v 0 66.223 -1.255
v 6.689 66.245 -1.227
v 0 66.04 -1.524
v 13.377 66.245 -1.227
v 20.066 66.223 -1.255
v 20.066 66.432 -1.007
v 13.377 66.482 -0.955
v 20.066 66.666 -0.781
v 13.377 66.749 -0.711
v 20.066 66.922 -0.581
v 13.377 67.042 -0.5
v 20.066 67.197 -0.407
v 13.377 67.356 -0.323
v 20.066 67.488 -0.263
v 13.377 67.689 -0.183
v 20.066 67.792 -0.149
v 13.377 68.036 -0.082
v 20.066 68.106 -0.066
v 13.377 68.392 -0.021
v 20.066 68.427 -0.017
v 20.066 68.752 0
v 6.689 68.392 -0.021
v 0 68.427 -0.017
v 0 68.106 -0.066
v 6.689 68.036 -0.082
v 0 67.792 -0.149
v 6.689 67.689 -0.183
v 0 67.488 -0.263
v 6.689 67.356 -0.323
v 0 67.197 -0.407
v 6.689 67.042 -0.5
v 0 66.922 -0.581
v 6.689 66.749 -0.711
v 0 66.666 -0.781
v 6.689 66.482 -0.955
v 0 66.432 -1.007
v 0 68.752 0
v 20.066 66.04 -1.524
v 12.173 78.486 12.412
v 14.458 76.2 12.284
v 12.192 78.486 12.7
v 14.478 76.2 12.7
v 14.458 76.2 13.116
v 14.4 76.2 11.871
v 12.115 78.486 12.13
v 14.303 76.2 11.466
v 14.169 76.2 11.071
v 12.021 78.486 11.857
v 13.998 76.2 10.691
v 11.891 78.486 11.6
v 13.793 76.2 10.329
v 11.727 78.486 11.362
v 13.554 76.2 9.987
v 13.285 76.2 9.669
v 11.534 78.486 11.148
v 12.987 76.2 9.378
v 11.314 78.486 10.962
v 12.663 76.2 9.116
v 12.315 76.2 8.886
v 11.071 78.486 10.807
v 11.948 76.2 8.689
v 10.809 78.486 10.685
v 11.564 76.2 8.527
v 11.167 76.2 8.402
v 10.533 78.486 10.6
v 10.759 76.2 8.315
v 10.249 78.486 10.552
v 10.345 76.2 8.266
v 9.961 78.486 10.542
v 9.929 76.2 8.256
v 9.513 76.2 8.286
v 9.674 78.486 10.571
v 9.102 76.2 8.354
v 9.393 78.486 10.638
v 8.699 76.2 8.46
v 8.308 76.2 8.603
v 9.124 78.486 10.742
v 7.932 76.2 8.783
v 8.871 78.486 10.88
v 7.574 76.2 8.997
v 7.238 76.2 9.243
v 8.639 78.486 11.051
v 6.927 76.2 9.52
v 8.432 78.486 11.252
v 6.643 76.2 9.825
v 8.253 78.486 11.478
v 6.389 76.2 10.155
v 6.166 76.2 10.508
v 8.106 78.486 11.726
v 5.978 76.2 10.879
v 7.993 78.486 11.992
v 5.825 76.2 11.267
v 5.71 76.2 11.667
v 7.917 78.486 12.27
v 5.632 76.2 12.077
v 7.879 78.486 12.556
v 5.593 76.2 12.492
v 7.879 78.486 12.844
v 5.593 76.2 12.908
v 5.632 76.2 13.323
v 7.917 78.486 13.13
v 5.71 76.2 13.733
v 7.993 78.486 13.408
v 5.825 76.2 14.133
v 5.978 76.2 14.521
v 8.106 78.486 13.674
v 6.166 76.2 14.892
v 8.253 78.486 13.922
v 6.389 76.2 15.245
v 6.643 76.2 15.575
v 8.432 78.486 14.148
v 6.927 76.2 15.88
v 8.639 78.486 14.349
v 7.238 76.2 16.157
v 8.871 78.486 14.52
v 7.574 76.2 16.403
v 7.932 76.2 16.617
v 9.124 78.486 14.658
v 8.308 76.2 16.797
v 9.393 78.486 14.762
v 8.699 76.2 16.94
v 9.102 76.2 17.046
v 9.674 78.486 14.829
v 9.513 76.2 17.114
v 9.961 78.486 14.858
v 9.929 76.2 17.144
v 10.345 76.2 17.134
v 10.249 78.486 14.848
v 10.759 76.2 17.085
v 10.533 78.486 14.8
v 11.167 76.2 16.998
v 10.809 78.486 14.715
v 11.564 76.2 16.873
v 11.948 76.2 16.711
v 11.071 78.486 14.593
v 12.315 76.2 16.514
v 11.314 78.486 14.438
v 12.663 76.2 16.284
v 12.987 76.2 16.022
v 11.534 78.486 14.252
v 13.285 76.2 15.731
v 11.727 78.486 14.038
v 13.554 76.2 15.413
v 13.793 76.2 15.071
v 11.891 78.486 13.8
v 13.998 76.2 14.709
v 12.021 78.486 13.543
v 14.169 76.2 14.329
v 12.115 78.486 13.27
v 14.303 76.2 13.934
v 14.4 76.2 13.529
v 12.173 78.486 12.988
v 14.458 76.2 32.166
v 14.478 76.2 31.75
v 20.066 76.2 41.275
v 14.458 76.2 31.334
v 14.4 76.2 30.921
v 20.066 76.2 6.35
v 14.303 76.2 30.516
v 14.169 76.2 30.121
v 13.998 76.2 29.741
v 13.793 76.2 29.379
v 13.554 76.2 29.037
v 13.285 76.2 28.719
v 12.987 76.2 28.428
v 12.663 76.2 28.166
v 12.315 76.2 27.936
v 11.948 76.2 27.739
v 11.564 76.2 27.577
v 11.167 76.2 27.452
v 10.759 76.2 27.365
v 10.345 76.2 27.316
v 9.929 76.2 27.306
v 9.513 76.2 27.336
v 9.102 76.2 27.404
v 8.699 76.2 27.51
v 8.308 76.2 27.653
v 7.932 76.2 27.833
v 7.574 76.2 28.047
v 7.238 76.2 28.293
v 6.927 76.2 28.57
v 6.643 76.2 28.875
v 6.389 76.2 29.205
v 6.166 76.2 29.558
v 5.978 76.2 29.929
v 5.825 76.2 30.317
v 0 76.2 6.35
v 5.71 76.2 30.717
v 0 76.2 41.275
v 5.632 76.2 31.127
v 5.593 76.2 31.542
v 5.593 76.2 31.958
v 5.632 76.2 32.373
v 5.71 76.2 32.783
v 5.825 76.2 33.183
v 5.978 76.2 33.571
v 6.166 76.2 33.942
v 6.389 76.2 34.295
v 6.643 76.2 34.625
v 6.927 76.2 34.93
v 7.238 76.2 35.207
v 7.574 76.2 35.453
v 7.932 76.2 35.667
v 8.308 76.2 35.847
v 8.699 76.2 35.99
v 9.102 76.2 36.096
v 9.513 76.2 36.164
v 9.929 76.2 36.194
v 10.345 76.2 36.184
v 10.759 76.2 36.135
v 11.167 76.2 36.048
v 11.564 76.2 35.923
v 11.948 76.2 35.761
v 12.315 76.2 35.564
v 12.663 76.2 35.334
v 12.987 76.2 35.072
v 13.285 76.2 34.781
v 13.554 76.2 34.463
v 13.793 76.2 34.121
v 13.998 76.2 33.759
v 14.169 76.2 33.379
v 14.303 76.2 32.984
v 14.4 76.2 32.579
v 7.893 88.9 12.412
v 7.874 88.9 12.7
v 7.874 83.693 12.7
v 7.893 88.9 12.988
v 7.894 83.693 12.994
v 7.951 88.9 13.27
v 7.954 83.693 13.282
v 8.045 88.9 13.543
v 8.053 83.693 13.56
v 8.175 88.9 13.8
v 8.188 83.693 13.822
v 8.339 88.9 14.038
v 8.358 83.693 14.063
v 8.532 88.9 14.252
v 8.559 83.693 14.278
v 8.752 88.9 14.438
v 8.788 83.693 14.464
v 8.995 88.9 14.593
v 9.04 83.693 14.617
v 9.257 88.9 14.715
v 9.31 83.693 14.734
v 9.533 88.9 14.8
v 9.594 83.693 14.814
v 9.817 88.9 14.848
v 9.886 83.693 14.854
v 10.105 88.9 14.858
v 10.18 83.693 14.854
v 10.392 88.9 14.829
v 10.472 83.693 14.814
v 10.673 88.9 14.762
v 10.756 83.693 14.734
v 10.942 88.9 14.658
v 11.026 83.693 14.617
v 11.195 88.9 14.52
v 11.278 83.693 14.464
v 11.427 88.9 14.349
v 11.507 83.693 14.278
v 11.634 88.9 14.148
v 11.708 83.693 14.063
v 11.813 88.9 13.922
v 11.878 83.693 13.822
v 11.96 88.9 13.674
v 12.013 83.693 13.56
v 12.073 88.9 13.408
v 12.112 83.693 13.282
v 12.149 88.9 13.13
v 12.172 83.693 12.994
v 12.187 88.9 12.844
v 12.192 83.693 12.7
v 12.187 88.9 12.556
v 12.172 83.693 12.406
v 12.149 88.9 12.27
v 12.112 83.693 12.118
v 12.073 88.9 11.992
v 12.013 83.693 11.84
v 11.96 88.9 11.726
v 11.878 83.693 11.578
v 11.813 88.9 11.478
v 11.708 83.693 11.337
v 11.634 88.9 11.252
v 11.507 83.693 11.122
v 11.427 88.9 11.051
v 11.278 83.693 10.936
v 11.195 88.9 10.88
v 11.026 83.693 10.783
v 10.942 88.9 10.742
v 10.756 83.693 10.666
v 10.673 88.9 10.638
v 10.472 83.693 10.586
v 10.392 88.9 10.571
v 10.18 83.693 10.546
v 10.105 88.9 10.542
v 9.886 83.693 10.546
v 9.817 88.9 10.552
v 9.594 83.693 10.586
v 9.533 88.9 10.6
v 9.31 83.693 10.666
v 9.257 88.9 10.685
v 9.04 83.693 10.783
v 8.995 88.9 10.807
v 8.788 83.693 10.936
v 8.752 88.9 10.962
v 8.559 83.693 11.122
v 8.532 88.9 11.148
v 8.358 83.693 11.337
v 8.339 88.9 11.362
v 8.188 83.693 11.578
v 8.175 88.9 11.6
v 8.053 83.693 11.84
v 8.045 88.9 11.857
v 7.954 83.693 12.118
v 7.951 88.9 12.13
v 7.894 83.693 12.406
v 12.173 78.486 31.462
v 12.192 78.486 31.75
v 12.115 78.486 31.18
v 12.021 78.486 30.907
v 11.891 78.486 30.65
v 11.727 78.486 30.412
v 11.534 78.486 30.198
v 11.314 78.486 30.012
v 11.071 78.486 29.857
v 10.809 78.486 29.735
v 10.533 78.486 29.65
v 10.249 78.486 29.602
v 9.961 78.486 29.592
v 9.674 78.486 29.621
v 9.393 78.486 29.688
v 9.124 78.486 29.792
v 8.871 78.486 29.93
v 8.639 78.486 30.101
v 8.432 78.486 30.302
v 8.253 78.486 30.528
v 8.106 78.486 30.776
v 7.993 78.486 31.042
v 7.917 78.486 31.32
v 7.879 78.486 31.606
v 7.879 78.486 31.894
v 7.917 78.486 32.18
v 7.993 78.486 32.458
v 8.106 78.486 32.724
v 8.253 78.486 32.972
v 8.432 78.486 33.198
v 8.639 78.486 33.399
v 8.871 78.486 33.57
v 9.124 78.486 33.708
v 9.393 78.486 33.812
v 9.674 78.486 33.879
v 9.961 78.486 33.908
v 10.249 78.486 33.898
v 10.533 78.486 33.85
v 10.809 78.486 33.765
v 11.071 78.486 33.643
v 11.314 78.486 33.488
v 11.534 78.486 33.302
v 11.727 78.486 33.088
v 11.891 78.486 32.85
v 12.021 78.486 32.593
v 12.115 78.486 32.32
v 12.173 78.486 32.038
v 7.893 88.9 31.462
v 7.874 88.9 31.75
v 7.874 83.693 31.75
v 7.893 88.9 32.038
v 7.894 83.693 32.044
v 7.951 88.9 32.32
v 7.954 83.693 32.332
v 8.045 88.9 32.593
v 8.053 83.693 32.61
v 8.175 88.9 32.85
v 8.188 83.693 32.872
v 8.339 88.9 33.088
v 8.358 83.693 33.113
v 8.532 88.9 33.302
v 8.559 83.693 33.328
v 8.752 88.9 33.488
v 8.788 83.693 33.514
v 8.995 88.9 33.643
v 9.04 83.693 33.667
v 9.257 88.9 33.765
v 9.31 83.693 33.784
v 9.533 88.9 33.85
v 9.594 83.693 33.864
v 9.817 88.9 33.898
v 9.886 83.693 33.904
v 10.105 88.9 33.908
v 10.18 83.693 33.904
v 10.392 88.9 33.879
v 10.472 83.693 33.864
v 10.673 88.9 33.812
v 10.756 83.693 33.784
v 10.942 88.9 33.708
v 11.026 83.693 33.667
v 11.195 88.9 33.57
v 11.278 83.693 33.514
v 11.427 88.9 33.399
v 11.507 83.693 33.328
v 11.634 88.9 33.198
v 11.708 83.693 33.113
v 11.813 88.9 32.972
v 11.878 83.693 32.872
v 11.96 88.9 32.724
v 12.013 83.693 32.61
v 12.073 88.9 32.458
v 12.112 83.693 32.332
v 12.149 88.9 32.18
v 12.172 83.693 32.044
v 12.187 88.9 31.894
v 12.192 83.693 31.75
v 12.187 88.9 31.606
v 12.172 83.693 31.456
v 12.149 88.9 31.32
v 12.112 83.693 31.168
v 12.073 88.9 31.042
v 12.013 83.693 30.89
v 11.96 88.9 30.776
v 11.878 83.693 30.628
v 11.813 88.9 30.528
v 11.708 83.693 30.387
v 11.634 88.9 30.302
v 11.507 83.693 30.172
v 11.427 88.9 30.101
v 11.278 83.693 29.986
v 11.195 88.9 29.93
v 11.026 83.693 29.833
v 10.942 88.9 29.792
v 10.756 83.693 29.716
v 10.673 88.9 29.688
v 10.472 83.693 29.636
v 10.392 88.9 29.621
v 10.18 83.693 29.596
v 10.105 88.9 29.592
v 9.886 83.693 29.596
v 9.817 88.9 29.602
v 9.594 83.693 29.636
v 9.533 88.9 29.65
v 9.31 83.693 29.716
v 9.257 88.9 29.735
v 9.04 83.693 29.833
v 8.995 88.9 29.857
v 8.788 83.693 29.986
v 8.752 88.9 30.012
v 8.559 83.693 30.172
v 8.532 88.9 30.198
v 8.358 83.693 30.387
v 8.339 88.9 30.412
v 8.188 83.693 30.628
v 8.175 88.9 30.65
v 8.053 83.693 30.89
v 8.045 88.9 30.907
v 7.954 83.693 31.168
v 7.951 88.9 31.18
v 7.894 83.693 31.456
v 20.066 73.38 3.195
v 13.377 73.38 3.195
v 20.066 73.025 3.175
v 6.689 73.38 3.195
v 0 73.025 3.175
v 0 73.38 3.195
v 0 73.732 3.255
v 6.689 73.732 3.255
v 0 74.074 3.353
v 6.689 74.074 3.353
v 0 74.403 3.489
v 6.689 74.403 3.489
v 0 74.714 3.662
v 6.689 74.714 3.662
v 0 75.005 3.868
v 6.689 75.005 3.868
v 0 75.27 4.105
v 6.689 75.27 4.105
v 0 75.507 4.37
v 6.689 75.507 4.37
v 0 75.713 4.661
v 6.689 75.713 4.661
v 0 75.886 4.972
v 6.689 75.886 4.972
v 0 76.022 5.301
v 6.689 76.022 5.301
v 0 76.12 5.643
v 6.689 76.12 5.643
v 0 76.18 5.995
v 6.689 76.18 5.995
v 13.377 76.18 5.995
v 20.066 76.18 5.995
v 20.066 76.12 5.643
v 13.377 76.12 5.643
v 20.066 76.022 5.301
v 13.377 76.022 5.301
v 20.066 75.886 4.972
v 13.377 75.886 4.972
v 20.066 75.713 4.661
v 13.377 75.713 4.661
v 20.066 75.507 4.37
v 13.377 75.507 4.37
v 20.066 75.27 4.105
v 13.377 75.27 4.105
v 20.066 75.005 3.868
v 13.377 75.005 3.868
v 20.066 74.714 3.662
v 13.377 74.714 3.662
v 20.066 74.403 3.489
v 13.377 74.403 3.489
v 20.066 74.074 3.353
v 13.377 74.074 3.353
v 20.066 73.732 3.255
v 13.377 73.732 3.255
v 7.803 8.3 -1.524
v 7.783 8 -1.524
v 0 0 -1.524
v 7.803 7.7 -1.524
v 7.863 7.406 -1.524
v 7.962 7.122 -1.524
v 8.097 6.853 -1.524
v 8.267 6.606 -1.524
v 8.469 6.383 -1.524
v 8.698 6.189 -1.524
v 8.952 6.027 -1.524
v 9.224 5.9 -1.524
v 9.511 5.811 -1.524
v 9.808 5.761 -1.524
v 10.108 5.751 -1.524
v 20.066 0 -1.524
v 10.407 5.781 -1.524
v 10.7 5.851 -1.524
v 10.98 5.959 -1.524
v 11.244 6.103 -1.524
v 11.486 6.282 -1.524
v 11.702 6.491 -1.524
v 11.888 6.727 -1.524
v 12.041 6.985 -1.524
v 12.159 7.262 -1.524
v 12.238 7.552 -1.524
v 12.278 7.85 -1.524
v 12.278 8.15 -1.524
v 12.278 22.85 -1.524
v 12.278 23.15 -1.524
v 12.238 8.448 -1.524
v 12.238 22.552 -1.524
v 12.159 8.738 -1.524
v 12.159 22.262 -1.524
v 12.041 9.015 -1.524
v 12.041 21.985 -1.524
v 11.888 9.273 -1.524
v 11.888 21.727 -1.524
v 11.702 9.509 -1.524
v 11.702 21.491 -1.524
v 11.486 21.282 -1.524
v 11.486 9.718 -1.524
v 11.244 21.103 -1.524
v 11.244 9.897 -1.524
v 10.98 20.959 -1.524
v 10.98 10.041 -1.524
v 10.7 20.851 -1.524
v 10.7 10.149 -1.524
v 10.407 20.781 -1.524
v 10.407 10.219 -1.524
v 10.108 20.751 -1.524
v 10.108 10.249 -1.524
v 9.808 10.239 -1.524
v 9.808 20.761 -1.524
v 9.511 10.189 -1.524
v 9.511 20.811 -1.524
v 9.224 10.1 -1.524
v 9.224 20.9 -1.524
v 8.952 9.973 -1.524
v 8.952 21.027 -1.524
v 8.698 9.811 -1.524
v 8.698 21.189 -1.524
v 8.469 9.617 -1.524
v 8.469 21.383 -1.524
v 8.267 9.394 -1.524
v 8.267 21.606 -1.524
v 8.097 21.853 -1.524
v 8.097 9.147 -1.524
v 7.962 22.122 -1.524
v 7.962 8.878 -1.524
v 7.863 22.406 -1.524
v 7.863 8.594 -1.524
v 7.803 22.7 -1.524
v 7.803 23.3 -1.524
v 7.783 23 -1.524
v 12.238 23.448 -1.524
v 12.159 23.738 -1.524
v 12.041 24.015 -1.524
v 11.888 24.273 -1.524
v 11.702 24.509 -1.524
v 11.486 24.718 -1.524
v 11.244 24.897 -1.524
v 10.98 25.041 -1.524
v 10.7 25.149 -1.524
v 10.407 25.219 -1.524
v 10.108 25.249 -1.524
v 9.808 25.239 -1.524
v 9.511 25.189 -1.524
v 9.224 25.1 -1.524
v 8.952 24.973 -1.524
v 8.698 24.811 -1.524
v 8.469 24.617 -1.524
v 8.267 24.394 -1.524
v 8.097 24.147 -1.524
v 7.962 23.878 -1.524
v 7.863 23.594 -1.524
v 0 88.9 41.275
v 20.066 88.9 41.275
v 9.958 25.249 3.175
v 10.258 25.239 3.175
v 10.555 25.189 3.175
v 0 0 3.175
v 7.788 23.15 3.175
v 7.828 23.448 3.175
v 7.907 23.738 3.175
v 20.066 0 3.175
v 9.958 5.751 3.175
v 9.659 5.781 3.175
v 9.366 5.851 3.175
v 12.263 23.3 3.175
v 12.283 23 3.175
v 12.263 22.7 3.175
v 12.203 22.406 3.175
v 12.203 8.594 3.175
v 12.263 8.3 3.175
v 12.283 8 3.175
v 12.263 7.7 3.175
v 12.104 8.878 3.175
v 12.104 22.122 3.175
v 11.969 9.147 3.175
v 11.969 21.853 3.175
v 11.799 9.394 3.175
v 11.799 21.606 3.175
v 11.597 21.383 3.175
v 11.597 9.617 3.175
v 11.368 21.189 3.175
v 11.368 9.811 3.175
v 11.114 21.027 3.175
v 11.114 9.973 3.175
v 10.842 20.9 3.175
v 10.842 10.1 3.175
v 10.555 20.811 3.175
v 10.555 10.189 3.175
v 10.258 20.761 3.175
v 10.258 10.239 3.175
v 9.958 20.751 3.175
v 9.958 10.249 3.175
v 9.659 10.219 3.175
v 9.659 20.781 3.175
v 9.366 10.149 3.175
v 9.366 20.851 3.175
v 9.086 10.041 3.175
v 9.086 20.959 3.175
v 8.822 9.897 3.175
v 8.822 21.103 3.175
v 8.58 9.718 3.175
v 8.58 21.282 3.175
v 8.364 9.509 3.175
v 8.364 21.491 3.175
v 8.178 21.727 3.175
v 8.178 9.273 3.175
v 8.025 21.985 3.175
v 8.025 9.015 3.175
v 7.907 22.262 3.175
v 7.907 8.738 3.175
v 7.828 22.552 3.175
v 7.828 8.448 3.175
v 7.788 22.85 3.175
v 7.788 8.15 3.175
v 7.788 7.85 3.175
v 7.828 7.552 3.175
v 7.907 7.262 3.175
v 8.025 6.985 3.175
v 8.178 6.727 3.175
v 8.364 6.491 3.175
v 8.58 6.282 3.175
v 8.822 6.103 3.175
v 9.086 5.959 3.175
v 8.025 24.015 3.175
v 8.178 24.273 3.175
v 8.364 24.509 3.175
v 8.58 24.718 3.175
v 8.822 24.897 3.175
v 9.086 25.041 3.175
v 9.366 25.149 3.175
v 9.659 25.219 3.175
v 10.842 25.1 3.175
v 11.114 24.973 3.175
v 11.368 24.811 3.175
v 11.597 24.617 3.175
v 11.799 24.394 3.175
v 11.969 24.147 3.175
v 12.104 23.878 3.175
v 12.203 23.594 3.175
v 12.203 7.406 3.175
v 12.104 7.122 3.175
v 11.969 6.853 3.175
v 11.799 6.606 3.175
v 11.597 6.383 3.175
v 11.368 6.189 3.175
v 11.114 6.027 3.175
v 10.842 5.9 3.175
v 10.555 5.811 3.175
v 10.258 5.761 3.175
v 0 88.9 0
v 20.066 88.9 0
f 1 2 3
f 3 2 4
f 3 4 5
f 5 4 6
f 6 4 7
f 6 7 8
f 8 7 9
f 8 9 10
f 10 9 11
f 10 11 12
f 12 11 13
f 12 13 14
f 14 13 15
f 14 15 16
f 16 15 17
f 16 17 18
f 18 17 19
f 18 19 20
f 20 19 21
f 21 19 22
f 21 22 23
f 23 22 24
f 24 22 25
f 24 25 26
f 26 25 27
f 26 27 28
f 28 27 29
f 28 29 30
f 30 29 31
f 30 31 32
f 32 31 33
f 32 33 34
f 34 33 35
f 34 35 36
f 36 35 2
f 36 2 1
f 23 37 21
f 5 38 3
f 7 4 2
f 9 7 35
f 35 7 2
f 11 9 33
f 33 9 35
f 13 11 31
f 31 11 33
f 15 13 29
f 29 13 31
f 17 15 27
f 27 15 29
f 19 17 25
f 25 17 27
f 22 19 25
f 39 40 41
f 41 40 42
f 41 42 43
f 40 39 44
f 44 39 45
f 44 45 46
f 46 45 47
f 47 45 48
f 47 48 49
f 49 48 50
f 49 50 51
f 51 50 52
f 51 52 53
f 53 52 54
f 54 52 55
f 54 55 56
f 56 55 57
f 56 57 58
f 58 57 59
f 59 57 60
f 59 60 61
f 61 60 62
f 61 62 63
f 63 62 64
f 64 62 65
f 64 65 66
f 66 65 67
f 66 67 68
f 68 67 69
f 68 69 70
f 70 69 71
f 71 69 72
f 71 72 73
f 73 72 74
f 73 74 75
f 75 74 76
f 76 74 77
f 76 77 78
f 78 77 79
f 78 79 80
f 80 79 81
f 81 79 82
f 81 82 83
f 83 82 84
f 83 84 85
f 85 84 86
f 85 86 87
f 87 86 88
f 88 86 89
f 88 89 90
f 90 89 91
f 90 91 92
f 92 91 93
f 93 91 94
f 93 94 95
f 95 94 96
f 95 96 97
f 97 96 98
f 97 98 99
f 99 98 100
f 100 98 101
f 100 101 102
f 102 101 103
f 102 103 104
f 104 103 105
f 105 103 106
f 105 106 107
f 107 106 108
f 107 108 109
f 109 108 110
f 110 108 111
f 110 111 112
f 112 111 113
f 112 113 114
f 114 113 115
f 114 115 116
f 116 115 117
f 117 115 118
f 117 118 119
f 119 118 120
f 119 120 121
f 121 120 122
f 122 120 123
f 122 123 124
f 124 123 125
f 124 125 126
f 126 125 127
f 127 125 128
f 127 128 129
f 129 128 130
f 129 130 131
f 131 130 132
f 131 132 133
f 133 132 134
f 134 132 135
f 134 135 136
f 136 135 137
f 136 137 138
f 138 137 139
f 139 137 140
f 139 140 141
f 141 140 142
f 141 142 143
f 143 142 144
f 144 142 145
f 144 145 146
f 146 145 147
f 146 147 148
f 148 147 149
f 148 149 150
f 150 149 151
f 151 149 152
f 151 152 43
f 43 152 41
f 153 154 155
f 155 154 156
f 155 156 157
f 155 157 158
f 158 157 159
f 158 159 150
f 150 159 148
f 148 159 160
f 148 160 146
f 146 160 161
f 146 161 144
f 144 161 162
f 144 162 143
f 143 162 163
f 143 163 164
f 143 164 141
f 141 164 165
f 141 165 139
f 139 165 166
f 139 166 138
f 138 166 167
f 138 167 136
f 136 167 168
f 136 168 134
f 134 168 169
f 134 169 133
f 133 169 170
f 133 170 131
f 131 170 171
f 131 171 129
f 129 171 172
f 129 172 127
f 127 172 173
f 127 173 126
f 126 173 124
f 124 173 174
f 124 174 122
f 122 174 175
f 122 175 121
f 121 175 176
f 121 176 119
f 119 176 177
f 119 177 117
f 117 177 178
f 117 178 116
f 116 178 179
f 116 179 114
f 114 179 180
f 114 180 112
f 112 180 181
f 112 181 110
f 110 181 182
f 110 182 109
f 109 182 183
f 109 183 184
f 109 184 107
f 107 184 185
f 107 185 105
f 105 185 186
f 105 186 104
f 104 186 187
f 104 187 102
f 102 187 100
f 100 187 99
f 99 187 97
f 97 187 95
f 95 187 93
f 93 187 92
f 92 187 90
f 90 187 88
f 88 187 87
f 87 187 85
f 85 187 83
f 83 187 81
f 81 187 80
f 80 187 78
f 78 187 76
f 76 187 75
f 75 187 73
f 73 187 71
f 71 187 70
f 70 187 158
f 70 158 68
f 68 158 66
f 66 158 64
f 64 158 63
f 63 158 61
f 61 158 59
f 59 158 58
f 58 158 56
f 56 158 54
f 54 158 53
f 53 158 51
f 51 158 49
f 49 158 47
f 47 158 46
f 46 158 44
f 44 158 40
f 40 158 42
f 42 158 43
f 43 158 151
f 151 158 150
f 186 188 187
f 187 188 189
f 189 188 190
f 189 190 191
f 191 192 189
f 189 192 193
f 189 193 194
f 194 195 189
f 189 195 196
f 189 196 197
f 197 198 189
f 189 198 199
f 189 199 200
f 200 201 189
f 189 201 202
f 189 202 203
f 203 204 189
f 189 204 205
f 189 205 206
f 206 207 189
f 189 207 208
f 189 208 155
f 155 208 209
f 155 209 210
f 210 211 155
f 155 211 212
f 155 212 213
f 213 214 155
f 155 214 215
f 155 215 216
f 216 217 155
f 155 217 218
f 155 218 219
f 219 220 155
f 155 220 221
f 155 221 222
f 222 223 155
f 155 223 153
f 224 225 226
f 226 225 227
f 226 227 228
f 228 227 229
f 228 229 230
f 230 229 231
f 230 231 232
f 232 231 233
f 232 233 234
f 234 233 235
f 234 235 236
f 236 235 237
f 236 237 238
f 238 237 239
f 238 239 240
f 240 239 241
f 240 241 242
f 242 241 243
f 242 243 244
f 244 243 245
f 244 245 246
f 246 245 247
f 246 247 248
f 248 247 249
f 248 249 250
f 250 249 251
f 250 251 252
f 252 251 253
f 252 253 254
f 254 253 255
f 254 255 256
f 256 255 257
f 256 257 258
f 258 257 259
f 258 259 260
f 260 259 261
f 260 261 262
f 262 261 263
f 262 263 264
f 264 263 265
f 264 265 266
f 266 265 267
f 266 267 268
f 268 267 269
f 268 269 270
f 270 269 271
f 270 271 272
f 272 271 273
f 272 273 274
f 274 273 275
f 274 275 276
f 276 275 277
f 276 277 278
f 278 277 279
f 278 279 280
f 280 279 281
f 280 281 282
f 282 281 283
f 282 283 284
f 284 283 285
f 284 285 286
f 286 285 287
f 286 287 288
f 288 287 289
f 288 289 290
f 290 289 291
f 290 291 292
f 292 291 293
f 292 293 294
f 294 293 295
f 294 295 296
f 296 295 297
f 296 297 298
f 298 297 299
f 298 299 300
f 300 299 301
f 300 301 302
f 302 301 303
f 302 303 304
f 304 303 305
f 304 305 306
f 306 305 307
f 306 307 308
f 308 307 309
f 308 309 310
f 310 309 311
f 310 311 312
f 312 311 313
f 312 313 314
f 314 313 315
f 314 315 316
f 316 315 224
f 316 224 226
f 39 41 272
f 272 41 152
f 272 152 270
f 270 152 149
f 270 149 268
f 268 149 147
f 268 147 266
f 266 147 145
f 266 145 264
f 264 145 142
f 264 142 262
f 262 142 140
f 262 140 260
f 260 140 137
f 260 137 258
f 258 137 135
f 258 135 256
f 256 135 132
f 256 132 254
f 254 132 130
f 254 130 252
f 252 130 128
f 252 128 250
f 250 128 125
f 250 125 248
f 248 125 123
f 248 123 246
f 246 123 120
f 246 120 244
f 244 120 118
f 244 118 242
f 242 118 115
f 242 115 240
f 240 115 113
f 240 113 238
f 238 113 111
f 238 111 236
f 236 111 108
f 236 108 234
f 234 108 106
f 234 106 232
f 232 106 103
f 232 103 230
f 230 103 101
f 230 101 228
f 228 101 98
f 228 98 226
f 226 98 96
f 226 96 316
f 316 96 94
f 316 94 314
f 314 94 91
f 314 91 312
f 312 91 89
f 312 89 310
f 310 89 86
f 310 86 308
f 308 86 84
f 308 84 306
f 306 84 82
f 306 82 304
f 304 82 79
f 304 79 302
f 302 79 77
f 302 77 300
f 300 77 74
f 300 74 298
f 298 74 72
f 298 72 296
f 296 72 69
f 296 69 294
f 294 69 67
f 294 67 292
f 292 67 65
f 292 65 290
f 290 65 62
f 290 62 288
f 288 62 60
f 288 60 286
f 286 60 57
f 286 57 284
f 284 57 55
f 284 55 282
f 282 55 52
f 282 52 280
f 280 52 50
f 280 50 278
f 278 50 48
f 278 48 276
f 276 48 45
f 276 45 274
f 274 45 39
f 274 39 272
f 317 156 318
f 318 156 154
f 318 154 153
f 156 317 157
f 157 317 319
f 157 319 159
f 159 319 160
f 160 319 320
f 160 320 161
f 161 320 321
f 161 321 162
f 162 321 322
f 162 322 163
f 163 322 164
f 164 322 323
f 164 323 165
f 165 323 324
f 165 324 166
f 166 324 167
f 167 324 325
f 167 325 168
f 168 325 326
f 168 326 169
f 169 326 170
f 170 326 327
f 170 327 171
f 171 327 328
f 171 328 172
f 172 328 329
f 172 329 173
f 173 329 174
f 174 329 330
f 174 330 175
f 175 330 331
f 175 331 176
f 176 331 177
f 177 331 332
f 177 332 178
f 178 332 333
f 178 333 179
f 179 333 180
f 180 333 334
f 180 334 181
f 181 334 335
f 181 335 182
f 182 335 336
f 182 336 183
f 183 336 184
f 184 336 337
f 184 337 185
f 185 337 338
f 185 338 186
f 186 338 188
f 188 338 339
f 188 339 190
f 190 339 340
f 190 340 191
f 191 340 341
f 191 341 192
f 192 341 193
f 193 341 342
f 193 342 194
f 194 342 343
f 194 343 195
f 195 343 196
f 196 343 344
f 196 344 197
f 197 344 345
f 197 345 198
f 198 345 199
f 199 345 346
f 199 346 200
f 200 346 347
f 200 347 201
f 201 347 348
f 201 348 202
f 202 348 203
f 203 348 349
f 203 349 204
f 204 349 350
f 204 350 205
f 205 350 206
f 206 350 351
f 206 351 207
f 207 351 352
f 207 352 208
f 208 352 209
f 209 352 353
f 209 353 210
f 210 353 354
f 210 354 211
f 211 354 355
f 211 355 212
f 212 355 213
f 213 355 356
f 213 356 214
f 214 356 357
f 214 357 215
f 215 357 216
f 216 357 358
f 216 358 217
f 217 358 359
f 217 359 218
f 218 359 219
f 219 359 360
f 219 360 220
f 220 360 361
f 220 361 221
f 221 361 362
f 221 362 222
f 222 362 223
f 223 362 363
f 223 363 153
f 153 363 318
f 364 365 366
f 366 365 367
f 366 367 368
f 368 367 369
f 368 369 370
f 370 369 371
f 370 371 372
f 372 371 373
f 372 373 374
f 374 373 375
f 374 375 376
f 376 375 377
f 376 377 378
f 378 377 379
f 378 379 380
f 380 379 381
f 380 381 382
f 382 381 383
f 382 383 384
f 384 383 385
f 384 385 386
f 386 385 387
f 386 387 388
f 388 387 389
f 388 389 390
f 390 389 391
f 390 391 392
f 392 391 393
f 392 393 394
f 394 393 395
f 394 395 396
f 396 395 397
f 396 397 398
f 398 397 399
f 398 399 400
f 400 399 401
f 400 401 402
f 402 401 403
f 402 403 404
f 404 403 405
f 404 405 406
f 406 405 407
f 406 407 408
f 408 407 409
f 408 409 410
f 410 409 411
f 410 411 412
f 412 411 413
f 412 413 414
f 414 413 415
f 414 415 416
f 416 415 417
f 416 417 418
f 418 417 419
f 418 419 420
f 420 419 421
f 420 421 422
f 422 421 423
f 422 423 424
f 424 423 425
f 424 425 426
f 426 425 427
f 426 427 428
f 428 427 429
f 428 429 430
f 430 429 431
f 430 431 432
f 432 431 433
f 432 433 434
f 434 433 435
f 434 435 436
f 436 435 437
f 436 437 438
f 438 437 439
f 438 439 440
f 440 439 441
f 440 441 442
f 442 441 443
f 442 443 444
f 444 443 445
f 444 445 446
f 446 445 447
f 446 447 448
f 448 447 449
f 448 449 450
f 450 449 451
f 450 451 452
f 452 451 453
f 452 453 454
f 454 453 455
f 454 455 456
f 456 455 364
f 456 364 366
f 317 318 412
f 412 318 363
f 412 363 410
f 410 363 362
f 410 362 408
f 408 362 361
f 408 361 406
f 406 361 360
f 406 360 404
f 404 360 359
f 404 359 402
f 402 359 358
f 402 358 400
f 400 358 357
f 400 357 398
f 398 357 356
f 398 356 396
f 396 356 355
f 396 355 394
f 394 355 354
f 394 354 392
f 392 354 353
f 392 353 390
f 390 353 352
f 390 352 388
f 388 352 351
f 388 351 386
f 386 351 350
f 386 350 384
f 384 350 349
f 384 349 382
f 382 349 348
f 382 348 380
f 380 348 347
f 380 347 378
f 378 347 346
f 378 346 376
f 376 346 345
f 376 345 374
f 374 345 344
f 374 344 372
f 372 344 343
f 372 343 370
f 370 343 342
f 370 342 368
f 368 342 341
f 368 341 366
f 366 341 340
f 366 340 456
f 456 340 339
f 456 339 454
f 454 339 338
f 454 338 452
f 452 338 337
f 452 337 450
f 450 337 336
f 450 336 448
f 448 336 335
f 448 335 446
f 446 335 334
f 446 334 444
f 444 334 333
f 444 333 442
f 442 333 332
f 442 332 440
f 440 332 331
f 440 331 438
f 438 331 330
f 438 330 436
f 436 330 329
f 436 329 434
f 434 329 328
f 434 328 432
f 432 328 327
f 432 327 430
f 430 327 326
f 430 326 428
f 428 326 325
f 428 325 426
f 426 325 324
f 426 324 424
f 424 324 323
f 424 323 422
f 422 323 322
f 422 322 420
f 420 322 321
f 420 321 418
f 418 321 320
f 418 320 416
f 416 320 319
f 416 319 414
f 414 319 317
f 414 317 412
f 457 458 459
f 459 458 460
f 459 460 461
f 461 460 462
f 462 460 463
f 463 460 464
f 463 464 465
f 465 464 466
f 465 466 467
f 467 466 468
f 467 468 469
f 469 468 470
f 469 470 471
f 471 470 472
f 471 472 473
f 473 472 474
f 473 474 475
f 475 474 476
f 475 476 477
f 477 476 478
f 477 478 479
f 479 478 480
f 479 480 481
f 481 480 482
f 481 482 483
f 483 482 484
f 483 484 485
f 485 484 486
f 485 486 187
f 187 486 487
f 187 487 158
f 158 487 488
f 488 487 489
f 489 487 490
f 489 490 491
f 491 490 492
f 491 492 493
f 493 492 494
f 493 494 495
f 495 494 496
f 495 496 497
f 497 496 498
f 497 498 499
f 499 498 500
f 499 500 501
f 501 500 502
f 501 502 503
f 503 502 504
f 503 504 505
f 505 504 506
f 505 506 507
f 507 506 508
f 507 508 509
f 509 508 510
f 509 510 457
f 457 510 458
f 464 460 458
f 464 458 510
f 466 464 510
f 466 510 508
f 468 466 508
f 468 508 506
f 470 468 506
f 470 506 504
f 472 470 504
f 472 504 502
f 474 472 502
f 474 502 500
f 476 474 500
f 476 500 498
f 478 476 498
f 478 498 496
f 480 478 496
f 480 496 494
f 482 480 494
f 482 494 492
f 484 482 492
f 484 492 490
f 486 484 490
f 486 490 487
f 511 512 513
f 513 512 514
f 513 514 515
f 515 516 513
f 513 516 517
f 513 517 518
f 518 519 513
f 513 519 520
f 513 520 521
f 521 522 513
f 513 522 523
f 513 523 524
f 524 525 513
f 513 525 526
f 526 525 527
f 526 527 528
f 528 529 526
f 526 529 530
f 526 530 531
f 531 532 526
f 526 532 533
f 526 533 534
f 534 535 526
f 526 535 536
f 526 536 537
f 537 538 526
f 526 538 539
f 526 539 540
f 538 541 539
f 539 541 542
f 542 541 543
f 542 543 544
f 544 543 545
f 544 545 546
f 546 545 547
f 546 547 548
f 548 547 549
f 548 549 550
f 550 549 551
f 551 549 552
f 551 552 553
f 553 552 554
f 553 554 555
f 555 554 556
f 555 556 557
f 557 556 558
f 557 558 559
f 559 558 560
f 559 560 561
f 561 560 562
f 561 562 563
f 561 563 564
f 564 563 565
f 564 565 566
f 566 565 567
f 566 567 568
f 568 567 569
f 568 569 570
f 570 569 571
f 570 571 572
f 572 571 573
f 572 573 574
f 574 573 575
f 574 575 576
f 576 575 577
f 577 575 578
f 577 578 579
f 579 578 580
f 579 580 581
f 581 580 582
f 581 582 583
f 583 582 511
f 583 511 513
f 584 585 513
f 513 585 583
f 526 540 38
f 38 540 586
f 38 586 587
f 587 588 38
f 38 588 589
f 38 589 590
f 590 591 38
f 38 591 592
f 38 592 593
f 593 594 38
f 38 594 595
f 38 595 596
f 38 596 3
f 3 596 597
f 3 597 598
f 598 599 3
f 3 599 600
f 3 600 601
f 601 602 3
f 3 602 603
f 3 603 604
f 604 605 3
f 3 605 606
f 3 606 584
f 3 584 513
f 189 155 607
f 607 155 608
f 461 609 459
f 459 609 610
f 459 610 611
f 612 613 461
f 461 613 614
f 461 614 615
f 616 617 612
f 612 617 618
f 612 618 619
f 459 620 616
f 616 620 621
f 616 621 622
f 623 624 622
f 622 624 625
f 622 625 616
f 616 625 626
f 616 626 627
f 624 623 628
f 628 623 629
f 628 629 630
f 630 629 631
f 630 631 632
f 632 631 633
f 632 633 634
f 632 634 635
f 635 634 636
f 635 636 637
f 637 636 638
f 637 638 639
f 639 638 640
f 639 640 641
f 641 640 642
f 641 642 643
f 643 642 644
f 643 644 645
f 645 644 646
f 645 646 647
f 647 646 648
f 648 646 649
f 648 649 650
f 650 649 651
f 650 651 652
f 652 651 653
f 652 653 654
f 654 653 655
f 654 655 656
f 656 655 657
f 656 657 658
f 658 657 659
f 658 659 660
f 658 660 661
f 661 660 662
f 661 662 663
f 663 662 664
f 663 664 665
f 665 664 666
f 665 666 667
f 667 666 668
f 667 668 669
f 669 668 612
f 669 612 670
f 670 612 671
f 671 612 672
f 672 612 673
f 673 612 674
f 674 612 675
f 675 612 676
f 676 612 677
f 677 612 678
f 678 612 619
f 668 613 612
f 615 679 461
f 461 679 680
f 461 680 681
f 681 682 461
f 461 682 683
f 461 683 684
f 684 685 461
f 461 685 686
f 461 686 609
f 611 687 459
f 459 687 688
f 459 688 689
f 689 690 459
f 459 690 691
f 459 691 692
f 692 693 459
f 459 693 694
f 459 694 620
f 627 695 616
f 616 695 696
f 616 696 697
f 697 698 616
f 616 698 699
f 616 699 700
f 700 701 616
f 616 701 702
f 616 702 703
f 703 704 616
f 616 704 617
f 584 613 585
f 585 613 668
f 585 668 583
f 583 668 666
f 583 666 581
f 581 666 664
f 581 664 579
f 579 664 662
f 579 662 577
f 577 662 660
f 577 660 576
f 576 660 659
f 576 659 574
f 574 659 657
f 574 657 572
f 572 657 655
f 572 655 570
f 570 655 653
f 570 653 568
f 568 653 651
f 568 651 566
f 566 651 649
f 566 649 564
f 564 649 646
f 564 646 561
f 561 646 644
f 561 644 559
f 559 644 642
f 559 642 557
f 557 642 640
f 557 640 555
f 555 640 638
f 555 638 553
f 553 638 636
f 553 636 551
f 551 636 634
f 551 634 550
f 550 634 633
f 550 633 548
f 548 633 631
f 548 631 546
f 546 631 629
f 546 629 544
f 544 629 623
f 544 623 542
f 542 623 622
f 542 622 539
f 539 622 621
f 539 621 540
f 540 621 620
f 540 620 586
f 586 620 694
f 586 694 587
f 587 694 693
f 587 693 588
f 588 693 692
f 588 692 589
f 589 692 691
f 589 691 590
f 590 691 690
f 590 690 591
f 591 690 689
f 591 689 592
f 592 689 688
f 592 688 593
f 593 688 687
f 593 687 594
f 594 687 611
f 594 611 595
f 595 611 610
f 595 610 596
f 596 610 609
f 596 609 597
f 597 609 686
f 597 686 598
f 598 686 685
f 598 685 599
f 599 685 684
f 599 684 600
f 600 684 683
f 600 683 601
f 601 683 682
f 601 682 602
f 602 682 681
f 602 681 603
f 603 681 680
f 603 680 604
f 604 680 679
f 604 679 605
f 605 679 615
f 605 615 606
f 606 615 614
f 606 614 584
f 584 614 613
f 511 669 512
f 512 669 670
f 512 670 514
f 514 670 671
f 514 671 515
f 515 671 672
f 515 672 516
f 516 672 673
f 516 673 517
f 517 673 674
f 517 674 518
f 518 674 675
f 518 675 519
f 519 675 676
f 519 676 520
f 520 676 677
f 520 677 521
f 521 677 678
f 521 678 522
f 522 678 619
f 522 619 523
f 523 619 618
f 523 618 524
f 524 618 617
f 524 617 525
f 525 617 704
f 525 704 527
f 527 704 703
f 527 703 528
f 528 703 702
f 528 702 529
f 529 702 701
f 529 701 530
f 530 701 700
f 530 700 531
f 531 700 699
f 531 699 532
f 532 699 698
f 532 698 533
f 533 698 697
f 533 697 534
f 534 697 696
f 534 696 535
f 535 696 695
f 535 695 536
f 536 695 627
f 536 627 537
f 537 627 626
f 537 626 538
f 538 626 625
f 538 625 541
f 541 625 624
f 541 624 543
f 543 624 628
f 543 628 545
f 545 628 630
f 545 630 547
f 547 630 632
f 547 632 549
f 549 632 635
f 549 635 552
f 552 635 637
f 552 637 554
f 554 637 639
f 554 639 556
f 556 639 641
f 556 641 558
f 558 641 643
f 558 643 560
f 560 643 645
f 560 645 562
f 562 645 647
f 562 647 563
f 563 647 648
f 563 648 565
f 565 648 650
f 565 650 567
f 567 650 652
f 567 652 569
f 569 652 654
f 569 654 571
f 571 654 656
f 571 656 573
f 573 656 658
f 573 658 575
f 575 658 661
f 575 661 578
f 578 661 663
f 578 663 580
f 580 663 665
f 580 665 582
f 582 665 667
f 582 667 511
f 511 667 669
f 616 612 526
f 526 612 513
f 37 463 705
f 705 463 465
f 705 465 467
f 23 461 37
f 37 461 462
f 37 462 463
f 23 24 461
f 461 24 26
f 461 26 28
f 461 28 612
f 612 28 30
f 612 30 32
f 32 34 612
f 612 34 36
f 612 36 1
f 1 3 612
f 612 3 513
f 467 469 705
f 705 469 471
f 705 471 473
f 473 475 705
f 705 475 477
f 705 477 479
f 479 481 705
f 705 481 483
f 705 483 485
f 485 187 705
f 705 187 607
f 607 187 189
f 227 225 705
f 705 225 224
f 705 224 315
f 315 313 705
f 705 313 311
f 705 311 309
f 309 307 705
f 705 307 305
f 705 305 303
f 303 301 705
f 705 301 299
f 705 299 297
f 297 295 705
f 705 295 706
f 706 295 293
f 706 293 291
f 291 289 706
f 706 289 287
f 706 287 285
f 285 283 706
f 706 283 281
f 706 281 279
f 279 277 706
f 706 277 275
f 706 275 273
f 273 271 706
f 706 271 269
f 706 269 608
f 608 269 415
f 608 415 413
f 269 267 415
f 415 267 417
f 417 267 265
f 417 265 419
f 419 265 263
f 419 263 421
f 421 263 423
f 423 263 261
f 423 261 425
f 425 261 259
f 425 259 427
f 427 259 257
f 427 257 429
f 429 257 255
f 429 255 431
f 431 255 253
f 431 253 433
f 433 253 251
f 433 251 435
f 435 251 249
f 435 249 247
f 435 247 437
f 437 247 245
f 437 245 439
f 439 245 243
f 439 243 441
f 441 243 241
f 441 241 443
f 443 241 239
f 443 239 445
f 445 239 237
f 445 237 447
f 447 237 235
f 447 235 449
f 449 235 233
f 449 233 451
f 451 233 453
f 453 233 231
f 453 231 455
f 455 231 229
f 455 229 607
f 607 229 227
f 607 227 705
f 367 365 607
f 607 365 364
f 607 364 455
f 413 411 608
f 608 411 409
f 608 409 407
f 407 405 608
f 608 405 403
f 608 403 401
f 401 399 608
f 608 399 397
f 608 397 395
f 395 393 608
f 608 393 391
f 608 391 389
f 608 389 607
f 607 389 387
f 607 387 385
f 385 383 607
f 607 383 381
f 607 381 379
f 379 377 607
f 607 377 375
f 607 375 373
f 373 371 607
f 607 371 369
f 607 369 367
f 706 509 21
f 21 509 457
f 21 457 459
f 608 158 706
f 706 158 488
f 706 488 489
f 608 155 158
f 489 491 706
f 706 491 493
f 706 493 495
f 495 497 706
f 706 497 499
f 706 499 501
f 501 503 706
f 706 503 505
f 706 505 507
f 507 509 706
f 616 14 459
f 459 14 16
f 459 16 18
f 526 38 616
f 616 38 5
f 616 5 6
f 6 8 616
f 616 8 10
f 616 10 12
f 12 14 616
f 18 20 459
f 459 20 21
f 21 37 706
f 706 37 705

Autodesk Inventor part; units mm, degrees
ref_plane "YZ Plane" through (0, 0, 0) normal (1, 0, 0) x (0, 1, 0)
ref_plane "XZ Plane" through (0, 0, 0) normal (0, 1, 0) x (-1, 0, 0)
ref_plane "XY Plane" through (0, 0, 0) normal (0, 0, 1) x (1, 0, 0)
sketch "Sketch1" plane through (0, 0, 0) normal (0, 0, 1) x (1, 0, 0)
  line L0 (0, 0) -> (20.066, 0)
  line L1 (20.066, 0) -> (20.066, 88.9)
  line L2 (20.066, 88.9) -> (0, 88.9)
  line L3 (0, 88.9) -> (0, 0)
  circle A0 centre (10.033, 8) radius 2.25
  circle A1 centre (10.033, 23) radius 2.25
  dimension "d0" = 20.066
  dimension "d1" = 88.9
  dimension "d10" = 8
  dimension "d11" = 15
  dimension "d12" = 4.5
  dimension "d13" = 4.5
extrude "Extrusion1" add sketch "Sketch1" along normal blind 3.175
sketch "Sketch2" plane through (0, 0, 3.175) normal (0, 0, 1) x (1, 0, 0)
  line L0 (0, 88.9) -> (0, 0) projected
  line L1 (20.066, 0) -> (20.066, 88.9) projected
  line L2 (0, 88.9) -> (20.066, 88.9)
  line L3 (20.066, 88.9) -> (20.066, 76.2)
  line L4 (20.066, 76.2) -> (0, 76.2)
  line L5 (0, 76.2) -> (0, 88.9)
  point P0 (0, 76.2)
  dimension "d4" = 12.7
extrude "Extrusion2" add sketch "Sketch2" along normal blind 38.1
sketch "Sketch3" plane through (0, 0, 0) normal (0, 0, -1) x (-1, 0, 0)
  line L0 (-20.066, 0) -> (-20.066, 88.9) projected
  line L1 (0, 0) -> (-20.066, 0) projected
  line L2 (0, 88.9) -> (0, 0) projected
  line L3 (-20.066, 88.9) -> (0, 88.9) projected
  line L4 (-20.066, 66.04) -> (0, 66.04)
  line L5 (0, 66.04) -> (0, 0)
  line L6 (0, 0) -> (-20.066, 0)
  line L7 (-20.066, 0) -> (-20.066, 66.04)
  point P0 (0, 66.04)
  dimension "d7" = 22.86
extrude "Extrusion3" add sketch "Sketch3" along normal blind 1.524 contours L0 L4 L2 L1
sketch "Sketch4" plane through (10.033, 23, 0) normal (0, 0, 1) x (1, 0, 0)
  circle A0 centre (0, -15) radius 2.25 projected
  circle A1 centre (0, 0) radius 2.25 projected
  point P0 (-10.033, -23)
extrude "Extrusion4" cut sketch "Sketch4" against normal blind 3.175
sketch "Sketch5" plane through (0, 76.2, 3.175) normal (0, -1, 0) x (1, 0, 0)
  line L0 (20.066, 0) -> (0, 0) projected
  line L1 (20.066, 0) -> (20.066, 38.1) projected
  line L2 (0, 38.1) -> (20.066, 38.1) projected
  line L3 (0, 0) -> (0, 38.1) projected
  circle A0 centre (10.033, 28.575) radius 2.159
  circle A1 centre (10.033, 9.525) radius 2.159
  point P0 (0, -3.175)
  point P1 (10.033, 38.1)
  dimension "d16" = 4.318
  dimension "d17" = 4.318
  dimension "d18" = 9.525
  dimension "d19" = 9.525
extrude "Extrusion5" cut sketch "Sketch5" against normal through all contours A0 | A1
fillet "Fillet1" radius 3.175 1 edges at (10.033, 76.2, 3.175)
chamfer "Chamfer1" distance 2.286 angle 45 2 edges at (7.874, 76.2, 31.75) (7.874, 76.2, 12.7)
fillet "Fillet2" radius 3.175 1 edges at (10.033, 66.04, 0)
properties part number "Tensioner Mount V1_3DPrint"
